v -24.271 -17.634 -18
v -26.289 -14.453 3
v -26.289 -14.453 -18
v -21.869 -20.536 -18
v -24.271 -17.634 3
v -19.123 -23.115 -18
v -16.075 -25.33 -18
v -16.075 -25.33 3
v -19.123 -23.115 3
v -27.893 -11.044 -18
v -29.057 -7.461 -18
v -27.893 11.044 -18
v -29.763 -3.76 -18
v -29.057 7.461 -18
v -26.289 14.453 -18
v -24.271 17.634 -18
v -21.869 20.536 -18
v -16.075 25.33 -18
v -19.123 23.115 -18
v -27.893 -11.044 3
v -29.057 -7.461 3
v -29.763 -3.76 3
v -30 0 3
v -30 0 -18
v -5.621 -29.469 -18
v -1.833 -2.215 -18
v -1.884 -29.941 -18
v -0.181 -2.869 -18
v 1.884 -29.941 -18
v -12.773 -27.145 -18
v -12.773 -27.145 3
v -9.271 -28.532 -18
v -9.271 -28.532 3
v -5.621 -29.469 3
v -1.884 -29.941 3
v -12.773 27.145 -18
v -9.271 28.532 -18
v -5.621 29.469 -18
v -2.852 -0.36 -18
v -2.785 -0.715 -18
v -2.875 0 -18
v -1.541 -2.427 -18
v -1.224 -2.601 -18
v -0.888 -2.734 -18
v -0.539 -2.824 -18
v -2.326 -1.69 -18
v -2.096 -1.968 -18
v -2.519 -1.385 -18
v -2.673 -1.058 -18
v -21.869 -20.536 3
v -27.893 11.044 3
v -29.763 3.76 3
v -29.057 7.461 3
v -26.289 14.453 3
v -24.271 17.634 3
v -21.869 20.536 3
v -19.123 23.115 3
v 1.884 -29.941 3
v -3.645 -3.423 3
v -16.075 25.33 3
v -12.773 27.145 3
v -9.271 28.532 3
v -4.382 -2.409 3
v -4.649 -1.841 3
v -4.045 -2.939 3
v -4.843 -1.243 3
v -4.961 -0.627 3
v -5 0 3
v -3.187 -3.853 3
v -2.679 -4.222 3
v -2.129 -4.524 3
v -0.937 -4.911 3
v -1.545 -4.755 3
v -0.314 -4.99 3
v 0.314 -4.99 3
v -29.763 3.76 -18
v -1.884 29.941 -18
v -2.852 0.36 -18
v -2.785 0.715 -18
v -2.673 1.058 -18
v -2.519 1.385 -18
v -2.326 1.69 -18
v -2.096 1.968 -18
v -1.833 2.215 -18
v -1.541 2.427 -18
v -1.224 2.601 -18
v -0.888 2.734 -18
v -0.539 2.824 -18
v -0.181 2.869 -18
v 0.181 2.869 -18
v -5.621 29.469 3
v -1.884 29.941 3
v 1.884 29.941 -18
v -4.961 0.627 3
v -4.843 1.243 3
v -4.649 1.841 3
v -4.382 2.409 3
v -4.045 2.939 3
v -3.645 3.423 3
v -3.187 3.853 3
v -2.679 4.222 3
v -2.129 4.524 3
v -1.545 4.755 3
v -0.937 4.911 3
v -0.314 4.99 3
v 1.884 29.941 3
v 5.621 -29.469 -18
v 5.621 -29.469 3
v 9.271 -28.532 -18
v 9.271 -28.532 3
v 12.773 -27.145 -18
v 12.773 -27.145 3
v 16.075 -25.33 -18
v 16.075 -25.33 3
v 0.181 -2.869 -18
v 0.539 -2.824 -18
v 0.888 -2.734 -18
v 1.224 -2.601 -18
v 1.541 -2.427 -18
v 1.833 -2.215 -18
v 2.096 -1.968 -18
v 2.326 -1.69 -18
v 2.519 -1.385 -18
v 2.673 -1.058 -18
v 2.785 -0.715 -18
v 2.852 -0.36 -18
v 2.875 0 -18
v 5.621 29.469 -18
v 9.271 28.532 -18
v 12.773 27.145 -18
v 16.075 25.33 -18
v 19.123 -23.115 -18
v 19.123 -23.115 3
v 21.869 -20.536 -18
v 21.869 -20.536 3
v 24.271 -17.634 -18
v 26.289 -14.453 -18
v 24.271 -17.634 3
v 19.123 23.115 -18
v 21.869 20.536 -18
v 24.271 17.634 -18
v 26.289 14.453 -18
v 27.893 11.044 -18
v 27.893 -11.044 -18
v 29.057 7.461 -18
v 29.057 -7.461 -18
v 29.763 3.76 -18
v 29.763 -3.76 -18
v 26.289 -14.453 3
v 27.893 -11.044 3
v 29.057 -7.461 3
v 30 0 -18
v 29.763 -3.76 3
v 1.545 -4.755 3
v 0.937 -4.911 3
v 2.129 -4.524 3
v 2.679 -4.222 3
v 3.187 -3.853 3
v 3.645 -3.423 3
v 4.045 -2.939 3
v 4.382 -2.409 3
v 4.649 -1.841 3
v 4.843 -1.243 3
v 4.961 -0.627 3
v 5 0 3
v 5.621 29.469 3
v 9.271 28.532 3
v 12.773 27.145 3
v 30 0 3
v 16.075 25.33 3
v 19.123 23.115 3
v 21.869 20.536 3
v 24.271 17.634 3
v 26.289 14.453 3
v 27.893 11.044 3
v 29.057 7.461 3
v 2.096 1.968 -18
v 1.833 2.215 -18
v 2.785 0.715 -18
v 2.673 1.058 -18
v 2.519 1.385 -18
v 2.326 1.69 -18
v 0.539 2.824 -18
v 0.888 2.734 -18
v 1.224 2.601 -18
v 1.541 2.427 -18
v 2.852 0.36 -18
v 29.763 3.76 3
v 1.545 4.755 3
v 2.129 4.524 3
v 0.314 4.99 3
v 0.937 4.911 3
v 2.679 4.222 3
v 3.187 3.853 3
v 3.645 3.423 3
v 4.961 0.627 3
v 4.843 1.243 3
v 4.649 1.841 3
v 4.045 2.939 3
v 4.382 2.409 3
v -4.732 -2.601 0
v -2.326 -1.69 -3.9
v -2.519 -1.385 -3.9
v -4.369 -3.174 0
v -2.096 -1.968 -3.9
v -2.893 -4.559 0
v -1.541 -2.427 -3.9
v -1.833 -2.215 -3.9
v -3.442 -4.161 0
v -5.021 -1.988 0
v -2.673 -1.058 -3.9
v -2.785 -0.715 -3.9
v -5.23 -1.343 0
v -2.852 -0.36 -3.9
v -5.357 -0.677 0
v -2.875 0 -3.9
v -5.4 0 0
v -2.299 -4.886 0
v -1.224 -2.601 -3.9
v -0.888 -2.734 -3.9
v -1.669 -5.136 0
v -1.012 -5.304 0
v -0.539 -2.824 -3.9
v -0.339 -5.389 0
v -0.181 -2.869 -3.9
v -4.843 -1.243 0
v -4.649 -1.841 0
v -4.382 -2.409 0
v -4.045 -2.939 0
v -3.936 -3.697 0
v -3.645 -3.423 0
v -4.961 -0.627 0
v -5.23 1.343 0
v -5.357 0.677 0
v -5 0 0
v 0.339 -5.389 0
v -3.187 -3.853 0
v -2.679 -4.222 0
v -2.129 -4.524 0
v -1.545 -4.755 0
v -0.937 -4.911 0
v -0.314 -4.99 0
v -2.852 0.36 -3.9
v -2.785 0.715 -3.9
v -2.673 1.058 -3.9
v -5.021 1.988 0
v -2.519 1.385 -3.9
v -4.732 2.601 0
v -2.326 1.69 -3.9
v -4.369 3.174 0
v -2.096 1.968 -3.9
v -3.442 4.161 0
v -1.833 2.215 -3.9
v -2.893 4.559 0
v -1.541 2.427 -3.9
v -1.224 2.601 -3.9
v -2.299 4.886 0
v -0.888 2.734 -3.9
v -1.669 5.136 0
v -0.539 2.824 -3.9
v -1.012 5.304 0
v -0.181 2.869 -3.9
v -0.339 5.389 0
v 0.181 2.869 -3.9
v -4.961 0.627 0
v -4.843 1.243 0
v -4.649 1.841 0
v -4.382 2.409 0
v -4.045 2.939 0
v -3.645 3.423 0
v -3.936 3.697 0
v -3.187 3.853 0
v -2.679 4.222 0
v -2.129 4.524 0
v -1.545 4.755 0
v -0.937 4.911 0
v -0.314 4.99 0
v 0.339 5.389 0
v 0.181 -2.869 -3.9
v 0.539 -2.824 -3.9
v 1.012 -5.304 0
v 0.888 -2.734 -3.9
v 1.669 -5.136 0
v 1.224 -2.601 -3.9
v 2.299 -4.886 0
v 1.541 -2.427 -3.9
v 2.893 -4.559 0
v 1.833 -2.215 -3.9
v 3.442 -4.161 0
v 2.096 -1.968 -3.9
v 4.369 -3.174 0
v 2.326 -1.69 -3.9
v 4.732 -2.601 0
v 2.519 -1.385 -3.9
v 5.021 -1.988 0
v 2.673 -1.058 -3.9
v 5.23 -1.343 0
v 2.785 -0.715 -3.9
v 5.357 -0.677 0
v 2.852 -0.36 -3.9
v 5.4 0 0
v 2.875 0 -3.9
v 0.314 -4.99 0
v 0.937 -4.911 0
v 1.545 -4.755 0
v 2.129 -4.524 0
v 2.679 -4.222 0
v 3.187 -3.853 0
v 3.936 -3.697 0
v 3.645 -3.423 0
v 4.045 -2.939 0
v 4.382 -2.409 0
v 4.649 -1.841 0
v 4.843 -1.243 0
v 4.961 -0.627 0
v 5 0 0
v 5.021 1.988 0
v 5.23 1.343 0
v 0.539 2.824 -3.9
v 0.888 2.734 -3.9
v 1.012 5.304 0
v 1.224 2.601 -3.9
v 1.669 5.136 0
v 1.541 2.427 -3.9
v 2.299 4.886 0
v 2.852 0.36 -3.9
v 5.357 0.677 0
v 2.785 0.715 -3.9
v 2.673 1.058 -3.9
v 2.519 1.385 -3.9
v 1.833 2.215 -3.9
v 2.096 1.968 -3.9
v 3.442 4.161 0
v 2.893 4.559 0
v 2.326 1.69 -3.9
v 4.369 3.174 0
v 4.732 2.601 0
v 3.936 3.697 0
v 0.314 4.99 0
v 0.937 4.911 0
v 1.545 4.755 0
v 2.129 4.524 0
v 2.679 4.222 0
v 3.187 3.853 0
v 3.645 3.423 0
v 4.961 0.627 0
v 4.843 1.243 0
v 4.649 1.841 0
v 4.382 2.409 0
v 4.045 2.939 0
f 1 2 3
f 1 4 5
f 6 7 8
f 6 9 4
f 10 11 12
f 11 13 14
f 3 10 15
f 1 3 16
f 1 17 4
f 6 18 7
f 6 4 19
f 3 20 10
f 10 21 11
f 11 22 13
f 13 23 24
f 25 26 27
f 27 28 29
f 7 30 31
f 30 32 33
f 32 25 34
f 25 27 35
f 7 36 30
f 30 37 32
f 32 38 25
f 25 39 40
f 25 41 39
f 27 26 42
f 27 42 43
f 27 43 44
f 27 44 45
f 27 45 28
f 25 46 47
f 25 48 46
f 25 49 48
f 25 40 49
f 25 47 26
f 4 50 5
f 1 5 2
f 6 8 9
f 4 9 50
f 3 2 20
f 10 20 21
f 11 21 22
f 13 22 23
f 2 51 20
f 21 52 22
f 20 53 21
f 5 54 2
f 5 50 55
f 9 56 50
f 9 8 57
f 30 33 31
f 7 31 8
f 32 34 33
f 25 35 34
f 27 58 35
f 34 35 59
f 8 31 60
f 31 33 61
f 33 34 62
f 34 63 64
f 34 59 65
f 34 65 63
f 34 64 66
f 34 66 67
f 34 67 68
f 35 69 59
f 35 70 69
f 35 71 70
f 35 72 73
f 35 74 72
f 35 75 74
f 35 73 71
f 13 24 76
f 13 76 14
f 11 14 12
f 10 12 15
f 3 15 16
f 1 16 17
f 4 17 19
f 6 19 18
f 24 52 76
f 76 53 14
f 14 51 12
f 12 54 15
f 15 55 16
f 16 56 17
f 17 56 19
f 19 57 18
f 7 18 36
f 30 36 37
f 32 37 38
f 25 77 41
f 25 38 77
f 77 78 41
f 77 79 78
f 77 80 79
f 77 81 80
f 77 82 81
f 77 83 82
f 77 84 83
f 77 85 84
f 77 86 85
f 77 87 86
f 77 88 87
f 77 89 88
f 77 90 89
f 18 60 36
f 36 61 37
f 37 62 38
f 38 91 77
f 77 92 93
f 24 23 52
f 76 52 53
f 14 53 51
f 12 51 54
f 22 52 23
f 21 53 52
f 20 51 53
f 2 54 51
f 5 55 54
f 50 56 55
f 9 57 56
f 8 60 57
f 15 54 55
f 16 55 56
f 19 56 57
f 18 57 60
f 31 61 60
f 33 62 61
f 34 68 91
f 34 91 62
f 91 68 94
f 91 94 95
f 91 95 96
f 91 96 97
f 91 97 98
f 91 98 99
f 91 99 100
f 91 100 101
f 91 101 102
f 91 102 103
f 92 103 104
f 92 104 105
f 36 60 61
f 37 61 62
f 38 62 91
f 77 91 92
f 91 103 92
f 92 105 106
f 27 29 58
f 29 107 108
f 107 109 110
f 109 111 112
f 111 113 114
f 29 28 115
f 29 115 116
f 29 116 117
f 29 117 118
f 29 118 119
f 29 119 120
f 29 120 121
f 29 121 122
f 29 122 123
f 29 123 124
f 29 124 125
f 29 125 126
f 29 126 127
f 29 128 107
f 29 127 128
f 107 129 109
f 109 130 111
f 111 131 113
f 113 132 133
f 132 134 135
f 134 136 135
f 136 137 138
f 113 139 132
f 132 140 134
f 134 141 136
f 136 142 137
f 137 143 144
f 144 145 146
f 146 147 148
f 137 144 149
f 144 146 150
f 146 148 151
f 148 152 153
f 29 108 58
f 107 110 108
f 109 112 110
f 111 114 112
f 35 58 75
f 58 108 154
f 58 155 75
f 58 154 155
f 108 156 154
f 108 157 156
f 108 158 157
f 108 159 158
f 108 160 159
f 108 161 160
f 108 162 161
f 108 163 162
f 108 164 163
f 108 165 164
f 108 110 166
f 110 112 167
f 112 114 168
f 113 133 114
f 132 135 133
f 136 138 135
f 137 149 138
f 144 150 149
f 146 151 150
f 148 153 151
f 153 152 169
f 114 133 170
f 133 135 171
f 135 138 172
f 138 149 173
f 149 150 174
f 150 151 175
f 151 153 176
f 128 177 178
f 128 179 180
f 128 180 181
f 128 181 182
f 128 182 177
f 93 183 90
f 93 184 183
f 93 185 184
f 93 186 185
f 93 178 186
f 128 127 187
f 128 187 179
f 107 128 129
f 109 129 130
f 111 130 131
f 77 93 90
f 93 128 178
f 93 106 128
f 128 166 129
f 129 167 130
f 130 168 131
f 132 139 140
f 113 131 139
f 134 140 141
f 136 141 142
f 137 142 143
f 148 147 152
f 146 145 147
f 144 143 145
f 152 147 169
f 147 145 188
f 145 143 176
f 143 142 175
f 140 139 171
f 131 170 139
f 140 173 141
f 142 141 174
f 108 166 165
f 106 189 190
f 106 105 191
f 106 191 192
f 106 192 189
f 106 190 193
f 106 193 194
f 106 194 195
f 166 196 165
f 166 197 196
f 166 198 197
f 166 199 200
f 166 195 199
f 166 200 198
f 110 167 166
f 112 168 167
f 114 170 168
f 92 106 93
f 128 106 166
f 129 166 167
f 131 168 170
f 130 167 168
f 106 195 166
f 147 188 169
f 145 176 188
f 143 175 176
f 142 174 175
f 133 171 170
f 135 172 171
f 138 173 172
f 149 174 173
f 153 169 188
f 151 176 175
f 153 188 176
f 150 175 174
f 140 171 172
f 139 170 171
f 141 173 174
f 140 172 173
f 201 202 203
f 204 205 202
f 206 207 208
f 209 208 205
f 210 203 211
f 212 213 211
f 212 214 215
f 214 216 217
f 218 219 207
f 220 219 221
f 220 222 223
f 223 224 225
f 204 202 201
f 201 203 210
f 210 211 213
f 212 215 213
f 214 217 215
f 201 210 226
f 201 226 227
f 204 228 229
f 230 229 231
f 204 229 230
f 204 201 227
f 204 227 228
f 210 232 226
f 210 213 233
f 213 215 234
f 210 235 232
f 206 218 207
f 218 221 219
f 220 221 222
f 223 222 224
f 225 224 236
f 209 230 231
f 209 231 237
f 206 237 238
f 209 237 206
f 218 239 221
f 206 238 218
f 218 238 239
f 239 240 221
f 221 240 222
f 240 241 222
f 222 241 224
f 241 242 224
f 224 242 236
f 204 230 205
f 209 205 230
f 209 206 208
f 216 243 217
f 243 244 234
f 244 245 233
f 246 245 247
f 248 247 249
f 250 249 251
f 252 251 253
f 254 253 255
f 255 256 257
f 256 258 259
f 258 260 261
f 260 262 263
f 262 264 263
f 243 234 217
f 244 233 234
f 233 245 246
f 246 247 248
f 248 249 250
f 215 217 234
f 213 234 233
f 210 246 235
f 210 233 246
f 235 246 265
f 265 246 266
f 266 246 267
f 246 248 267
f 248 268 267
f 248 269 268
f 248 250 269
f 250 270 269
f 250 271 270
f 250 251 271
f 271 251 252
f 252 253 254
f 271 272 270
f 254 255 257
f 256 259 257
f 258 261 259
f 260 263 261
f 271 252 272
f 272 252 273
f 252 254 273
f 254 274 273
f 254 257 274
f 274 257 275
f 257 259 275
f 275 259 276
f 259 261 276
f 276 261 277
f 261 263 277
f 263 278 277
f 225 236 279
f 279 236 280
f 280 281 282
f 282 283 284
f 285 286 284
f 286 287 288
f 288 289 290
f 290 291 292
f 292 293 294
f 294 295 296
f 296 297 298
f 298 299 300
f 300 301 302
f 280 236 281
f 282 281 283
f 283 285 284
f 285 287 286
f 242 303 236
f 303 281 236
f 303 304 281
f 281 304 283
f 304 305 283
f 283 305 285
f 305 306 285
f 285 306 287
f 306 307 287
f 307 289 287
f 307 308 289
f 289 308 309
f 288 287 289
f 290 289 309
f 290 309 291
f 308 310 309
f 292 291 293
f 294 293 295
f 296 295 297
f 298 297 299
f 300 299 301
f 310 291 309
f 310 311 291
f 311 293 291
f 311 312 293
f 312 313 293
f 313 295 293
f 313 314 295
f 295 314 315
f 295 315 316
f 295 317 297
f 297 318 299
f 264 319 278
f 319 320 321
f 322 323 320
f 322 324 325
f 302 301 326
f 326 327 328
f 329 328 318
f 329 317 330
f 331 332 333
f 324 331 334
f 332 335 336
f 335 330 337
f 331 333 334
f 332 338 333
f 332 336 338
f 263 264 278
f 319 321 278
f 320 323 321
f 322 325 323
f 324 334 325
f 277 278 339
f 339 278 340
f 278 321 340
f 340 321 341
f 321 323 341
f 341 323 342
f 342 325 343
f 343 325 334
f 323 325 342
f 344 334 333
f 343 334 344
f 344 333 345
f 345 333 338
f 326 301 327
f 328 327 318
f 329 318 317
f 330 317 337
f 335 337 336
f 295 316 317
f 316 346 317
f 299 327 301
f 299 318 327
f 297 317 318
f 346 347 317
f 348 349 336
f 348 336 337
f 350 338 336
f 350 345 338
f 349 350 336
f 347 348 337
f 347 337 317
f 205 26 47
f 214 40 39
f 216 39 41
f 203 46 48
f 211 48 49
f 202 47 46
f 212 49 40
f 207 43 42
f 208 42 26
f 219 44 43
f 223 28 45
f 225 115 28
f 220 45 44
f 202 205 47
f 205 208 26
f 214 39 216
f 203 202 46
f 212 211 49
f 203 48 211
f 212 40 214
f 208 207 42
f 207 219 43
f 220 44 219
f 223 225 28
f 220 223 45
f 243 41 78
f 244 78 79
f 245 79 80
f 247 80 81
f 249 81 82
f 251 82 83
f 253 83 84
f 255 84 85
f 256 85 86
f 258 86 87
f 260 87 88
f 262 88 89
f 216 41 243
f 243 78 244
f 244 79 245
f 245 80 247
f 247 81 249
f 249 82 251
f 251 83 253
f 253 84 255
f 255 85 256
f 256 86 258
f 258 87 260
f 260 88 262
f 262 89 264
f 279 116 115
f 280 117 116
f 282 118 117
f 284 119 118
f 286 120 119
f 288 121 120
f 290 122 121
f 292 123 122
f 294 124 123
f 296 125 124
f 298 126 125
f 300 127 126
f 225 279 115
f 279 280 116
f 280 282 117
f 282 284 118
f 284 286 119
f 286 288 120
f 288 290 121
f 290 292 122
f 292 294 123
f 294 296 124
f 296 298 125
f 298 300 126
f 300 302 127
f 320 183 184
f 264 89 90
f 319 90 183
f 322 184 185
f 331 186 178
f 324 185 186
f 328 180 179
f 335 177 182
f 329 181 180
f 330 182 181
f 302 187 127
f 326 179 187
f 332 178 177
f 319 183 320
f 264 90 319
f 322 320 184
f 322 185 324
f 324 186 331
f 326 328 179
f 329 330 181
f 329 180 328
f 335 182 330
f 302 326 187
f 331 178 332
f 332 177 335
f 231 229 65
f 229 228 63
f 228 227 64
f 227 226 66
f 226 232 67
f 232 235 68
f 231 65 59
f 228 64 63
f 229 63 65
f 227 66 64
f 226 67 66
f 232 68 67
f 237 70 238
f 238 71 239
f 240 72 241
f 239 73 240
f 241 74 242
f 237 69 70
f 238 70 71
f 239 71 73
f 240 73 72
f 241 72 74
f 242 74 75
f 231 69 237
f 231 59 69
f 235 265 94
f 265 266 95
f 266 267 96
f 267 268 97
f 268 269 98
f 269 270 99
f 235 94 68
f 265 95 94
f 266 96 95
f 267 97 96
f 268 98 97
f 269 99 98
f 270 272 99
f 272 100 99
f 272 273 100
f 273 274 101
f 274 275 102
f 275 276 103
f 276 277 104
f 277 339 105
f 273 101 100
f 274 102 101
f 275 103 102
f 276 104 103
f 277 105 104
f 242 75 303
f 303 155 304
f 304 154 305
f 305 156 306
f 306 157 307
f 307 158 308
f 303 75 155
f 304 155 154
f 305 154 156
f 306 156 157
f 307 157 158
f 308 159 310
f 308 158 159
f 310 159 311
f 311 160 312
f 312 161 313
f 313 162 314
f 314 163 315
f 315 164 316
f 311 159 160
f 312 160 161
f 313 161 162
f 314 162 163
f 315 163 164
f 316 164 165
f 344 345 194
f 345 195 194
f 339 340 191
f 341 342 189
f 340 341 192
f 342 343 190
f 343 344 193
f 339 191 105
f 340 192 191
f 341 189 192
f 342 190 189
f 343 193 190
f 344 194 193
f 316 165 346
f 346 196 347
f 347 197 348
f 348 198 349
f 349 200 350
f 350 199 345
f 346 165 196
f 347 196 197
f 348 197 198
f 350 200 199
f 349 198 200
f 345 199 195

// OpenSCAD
$fn = 50;

difference() {
	union() {
		translate(v = [0, 0, -18.0]) {
			cylinder(h = 21, r = 30.0);
		}
		#translate(v = [0, 0, -21.0]) {
			cylinder(h = 21, r = 2.875);
		}
	}
	union() {
		translate(v = [0, 0, 0]) {
			rotate(a = [0, 0, 0]) {
				difference() {
					union() {
						translate(v = [0, 0, -21.0]) {
							cylinder(h = 21, r = 2.6);
						}
						translate(v = [0, 0, -3.9]) {
							cylinder(h = 3.9, r1 = 2.875, r2 = 5.4);
						}
						translate(v = [0, 0, -21.0]) {
							cylinder(h = 21, r = 2.875);
						}
						translate(v = [0, 0, -21.0]) {
							cylinder(h = 21, r = 2.6);
						}
					}
					union();
				}
			}
		}
		#cylinder(h = 3, r = 5.0);
	}
}
